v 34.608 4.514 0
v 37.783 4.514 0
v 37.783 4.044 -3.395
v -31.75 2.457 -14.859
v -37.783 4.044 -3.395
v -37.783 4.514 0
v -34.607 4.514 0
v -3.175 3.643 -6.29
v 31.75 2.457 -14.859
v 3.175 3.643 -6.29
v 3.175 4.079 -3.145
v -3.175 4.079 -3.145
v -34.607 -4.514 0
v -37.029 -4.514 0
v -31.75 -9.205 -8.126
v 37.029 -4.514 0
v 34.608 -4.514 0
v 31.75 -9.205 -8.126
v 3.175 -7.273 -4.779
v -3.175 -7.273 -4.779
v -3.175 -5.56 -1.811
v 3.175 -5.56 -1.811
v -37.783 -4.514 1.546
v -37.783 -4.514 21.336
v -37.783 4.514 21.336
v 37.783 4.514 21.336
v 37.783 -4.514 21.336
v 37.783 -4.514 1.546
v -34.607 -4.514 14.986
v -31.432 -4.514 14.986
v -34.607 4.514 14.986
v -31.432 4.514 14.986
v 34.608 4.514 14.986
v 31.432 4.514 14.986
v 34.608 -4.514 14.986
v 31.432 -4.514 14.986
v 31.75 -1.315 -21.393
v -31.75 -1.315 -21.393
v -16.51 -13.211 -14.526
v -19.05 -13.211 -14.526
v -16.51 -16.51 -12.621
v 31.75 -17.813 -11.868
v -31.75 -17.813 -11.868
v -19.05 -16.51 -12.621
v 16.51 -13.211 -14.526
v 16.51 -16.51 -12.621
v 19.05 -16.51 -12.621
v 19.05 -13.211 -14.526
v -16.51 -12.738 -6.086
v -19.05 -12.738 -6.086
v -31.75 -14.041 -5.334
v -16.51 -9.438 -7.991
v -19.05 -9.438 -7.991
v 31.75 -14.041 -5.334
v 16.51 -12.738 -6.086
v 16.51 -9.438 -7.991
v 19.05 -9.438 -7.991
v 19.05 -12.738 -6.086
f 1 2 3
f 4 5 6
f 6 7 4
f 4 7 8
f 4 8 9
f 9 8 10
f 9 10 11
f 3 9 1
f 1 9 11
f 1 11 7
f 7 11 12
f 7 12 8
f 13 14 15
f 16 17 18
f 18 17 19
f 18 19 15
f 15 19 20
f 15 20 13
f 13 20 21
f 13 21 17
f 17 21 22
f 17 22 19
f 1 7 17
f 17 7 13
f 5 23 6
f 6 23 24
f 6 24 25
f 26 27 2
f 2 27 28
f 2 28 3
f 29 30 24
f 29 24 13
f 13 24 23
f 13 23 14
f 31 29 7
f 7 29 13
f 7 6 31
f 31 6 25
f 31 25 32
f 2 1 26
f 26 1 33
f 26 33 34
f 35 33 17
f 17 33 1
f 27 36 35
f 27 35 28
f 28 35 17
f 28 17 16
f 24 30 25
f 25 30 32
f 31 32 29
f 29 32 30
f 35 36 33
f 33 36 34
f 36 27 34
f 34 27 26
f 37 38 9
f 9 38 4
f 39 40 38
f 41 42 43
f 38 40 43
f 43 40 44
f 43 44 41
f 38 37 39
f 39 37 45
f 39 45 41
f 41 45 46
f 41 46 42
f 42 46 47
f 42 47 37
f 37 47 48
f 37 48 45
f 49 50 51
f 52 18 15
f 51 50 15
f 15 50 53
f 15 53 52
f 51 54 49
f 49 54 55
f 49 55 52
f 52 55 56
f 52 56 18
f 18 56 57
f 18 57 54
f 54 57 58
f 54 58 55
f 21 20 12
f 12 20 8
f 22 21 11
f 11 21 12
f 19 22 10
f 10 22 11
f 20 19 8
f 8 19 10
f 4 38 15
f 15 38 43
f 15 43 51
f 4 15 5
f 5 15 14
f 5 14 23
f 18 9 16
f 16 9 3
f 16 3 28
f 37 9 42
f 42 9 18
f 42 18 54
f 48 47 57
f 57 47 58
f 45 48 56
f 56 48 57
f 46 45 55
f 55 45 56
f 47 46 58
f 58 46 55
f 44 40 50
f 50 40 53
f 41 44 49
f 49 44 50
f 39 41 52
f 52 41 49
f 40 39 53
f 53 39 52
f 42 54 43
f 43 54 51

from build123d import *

# Parameters (mm, degrees)
SKETCH1_W                      = 75.565
SKETCH1_H                      = 35.56
BOSS_EXTRUDE1_DEPTH            = 3.175
SKETCH6_W                      = 3.175
SKETCH6_H                      = 9.028368652
BOSS_EXTRUDE4_DEPTH            = 14.986
BOSS_EXTRUDE6_DEPTH            = 9.028368652
BOSS_EXTRUDE7_DEPTH            = 75.565
SKETCH10_W                     = 75.565
SKETCH10_H                     = 23.368
BOSS_EXTRUDE8_DEPTH            = 7.545165067
CUT_EXTRUDE1_DEPTH             = 82.438667238
CUT_EXTRUDE2_REACH             = 52.836
SKETCH12_W                     = 6.35
SKETCH12_H                     = 3.175
CUT_EXTRUDE2_DIRECTION_2_DEPTH = 51.836411552
CUT_EXTRUDE3_DEPTH             = 55.765947786
CUT_EXTRUDE4_REACH             = 57.378
SKETCH14_W                     = 2.54
SKETCH14_H                     = 3.81
CUT_EXTRUDE5_REACH             = 57.378
SKETCH15_W                     = 114.661215645
SKETCH15_H                     = 6.578342779


with BuildPart() as part:
    # Sketch1 → Boss-Extrude1 (new body)
    with BuildSketch(Plane.XY):
        Rectangle(SKETCH1_W, SKETCH1_H)
    extrude(amount=-BOSS_EXTRUDE1_DEPTH)

    # Sketch6 → Boss-Extrude4 (add)
    with BuildSketch(Plane.XY):
        with Locations((-36.195, 0)):
            Rectangle(SKETCH6_W, SKETCH6_H)
        with Locations((36.195, 0)):
            Rectangle(SKETCH6_W, SKETCH6_H)
    extrude(amount=BOSS_EXTRUDE4_DEPTH)

    # Sketch8 → Boss-Extrude6 (add)
    with BuildSketch(Plane.XZ.offset(4.514184326)):
        Polygon((-37.7825, 14.986), (-31.4325, 14.986), (-37.7825, 21.336), align=None)
        Polygon((37.7825, 14.986), (31.4325, 14.986), (37.7825, 21.336), align=None)
    extrude(amount=-BOSS_EXTRUDE6_DEPTH)

    # Sketch9 → Boss-Extrude7 (add)
    with BuildSketch(Plane.ZY.offset(37.7825)):
        Polygon((-3.175, 17.78), (-18.572931679, 8.89), (-3.175, -17.78), align=None)
    extrude(amount=-BOSS_EXTRUDE7_DEPTH)

    # Sketch10 → Boss-Extrude8 (add)
    with BuildSketch(Plane(origin=(0, -5.819815329, -10.08021584), x_dir=(-1, 0, 0), z_dir=(0, -0.5000000000000012, -0.8660254037844378))):
        with Locations((0, -2.126431679)):
            Rectangle(SKETCH10_W, SKETCH10_H)
    extrude(amount=BOSS_EXTRUDE8_DEPTH)

    # Sketch11 → Cut-Extrude1 (cut, through all)
    with BuildSketch(Plane.ZY.offset(37.7825)):
        Polygon((-14.859, 2.457281636), (0, 4.514184326), (36.888684706, 18.275511072), (5.286071508, 25.150339228), (-30.3838484, 8.233222823), align=None)
        Polygon((-3.175, -17.78), (-8.125516688, -9.205453573), (0, -4.514184326), (40.158547499, -20.406390647), (15.599703883, -25.394905756), align=None)
    extrude(amount=-CUT_EXTRUDE1_DEPTH, mode=Mode.SUBTRACT)

    # Cut-Extrude2: up to this plane
    cut_extrude2_end = Plane(origin=(37.7825, -9.205453573, -8.125516688), z_dir=(0, 0.8660254037844387, -0.5))
    # Sketch12 → Cut-Extrude2 (cut, up to the surface)
    with BuildSketch(Plane(origin=(0, 4.429308453, -0.61314062), x_dir=(1, 0, 0), z_dir=(0, 0.9905543702216955, -0.13712052958875431)), mode=Mode.PRIVATE) as cut_extrude2_sk1:
        with Locations((0, 4.143512655)):
            Rectangle(SKETCH12_W, SKETCH12_H)
    cut_extrude2_tool1 = split(extrude(cut_extrude2_sk1.sketch, amount=-CUT_EXTRUDE2_REACH, mode=Mode.PRIVATE), bisect_by=cut_extrude2_end, keep=Keep.BOTH, mode=Mode.PRIVATE)
    add(cut_extrude2_tool1.solids().sort_by_distance((0, 3.861148, -4.717515))[0], mode=Mode.SUBTRACT)

    # Sketch12 → Cut-Extrude2 direction 2 (cut)
    with BuildSketch(Plane(origin=(0, 4.429308453, -0.61314062), x_dir=(1, 0, 0), z_dir=(0, 0.9905543702216955, -0.13712052958875431))):
        with Locations((0, 4.143512655)):
            Rectangle(SKETCH12_W, SKETCH12_H)
    extrude(amount=CUT_EXTRUDE2_DIRECTION_2_DEPTH, mode=Mode.SUBTRACT)

    # Sketch13 → Cut-Extrude3 (cut, through all)
    with BuildSketch(Plane(origin=(0, 8.277096964, -4.77878416), x_dir=(1, 0, 0), z_dir=(0, 0.8660254037844379, -0.5000000000000012))):
        Polygon((-31.75, 11.639630657), (-37.7825, 0.917907837), (-37.7825, 11.639630657), (-37.7825, 19.184795724), (-31.75, 19.184795724), align=None)
        Polygon((37.7825, 0.917907837), (37.7825, 11.639630657), (37.7825, 19.184795724), (31.75, 19.184795724), (31.75, 11.639630657), align=None)
    extrude(amount=-CUT_EXTRUDE3_DEPTH, mode=Mode.SUBTRACT)

    # Sketch14 → Cut-Extrude4 (cut, up to next)
    with BuildSketch(Plane(origin=(0, -9.592397862, -16.614520463), x_dir=(-1, 0, 0), z_dir=(0, -0.5000000000000013, -0.8660254037844379)), mode=Mode.PRIVATE) as cut_extrude4_sk1:
        with Locations((-17.78, -6.082892111)):
            Rectangle(SKETCH14_W, SKETCH14_H)
    cut_extrude4_tool1 = extrude(cut_extrude4_sk1.sketch, amount=-CUT_EXTRUDE4_REACH, mode=Mode.PRIVATE) & part.part
    # Sketch14 → Cut-Extrude4 (cut, up to next)
    with BuildSketch(Plane(origin=(0, -9.592397862, -16.614520463), x_dir=(-1, 0, 0), z_dir=(0, -0.5000000000000013, -0.8660254037844379)), mode=Mode.PRIVATE) as cut_extrude4_sk2:
        with Locations((17.78, -6.082892111)):
            Rectangle(SKETCH14_W, SKETCH14_H)
    cut_extrude4_tool2 = extrude(cut_extrude4_sk2.sketch, amount=-CUT_EXTRUDE4_REACH, mode=Mode.PRIVATE) & part.part
    add(cut_extrude4_tool1.solids().sort_by_distance((17.78, -14.860337, -13.573074))[0], mode=Mode.SUBTRACT)
    add(cut_extrude4_tool2.solids().sort_by_distance((-17.78, -14.860337, -13.573074))[0], mode=Mode.SUBTRACT)

    # Sketch15 → Cut-Extrude5 (cut, up to next)
    with BuildSketch(Plane(origin=(0, -9.592397862, -16.614520463), x_dir=(-1, 0, 0), z_dir=(0, -0.5000000000000012, -0.8660254037844378)), mode=Mode.PRIVATE) as cut_extrude5_sk1:
        with Locations((-7.679066914, -12.781603069)):
            Rectangle(SKETCH15_W, SKETCH15_H)
    cut_extrude5_tool1 = extrude(cut_extrude5_sk1.sketch, amount=-CUT_EXTRUDE5_REACH, mode=Mode.PRIVATE) & part.part
    add(cut_extrude5_tool1.solids().sort_by_distance((7.679067, -20.661591, -10.223719))[0], mode=Mode.SUBTRACT)


solid = part.part
